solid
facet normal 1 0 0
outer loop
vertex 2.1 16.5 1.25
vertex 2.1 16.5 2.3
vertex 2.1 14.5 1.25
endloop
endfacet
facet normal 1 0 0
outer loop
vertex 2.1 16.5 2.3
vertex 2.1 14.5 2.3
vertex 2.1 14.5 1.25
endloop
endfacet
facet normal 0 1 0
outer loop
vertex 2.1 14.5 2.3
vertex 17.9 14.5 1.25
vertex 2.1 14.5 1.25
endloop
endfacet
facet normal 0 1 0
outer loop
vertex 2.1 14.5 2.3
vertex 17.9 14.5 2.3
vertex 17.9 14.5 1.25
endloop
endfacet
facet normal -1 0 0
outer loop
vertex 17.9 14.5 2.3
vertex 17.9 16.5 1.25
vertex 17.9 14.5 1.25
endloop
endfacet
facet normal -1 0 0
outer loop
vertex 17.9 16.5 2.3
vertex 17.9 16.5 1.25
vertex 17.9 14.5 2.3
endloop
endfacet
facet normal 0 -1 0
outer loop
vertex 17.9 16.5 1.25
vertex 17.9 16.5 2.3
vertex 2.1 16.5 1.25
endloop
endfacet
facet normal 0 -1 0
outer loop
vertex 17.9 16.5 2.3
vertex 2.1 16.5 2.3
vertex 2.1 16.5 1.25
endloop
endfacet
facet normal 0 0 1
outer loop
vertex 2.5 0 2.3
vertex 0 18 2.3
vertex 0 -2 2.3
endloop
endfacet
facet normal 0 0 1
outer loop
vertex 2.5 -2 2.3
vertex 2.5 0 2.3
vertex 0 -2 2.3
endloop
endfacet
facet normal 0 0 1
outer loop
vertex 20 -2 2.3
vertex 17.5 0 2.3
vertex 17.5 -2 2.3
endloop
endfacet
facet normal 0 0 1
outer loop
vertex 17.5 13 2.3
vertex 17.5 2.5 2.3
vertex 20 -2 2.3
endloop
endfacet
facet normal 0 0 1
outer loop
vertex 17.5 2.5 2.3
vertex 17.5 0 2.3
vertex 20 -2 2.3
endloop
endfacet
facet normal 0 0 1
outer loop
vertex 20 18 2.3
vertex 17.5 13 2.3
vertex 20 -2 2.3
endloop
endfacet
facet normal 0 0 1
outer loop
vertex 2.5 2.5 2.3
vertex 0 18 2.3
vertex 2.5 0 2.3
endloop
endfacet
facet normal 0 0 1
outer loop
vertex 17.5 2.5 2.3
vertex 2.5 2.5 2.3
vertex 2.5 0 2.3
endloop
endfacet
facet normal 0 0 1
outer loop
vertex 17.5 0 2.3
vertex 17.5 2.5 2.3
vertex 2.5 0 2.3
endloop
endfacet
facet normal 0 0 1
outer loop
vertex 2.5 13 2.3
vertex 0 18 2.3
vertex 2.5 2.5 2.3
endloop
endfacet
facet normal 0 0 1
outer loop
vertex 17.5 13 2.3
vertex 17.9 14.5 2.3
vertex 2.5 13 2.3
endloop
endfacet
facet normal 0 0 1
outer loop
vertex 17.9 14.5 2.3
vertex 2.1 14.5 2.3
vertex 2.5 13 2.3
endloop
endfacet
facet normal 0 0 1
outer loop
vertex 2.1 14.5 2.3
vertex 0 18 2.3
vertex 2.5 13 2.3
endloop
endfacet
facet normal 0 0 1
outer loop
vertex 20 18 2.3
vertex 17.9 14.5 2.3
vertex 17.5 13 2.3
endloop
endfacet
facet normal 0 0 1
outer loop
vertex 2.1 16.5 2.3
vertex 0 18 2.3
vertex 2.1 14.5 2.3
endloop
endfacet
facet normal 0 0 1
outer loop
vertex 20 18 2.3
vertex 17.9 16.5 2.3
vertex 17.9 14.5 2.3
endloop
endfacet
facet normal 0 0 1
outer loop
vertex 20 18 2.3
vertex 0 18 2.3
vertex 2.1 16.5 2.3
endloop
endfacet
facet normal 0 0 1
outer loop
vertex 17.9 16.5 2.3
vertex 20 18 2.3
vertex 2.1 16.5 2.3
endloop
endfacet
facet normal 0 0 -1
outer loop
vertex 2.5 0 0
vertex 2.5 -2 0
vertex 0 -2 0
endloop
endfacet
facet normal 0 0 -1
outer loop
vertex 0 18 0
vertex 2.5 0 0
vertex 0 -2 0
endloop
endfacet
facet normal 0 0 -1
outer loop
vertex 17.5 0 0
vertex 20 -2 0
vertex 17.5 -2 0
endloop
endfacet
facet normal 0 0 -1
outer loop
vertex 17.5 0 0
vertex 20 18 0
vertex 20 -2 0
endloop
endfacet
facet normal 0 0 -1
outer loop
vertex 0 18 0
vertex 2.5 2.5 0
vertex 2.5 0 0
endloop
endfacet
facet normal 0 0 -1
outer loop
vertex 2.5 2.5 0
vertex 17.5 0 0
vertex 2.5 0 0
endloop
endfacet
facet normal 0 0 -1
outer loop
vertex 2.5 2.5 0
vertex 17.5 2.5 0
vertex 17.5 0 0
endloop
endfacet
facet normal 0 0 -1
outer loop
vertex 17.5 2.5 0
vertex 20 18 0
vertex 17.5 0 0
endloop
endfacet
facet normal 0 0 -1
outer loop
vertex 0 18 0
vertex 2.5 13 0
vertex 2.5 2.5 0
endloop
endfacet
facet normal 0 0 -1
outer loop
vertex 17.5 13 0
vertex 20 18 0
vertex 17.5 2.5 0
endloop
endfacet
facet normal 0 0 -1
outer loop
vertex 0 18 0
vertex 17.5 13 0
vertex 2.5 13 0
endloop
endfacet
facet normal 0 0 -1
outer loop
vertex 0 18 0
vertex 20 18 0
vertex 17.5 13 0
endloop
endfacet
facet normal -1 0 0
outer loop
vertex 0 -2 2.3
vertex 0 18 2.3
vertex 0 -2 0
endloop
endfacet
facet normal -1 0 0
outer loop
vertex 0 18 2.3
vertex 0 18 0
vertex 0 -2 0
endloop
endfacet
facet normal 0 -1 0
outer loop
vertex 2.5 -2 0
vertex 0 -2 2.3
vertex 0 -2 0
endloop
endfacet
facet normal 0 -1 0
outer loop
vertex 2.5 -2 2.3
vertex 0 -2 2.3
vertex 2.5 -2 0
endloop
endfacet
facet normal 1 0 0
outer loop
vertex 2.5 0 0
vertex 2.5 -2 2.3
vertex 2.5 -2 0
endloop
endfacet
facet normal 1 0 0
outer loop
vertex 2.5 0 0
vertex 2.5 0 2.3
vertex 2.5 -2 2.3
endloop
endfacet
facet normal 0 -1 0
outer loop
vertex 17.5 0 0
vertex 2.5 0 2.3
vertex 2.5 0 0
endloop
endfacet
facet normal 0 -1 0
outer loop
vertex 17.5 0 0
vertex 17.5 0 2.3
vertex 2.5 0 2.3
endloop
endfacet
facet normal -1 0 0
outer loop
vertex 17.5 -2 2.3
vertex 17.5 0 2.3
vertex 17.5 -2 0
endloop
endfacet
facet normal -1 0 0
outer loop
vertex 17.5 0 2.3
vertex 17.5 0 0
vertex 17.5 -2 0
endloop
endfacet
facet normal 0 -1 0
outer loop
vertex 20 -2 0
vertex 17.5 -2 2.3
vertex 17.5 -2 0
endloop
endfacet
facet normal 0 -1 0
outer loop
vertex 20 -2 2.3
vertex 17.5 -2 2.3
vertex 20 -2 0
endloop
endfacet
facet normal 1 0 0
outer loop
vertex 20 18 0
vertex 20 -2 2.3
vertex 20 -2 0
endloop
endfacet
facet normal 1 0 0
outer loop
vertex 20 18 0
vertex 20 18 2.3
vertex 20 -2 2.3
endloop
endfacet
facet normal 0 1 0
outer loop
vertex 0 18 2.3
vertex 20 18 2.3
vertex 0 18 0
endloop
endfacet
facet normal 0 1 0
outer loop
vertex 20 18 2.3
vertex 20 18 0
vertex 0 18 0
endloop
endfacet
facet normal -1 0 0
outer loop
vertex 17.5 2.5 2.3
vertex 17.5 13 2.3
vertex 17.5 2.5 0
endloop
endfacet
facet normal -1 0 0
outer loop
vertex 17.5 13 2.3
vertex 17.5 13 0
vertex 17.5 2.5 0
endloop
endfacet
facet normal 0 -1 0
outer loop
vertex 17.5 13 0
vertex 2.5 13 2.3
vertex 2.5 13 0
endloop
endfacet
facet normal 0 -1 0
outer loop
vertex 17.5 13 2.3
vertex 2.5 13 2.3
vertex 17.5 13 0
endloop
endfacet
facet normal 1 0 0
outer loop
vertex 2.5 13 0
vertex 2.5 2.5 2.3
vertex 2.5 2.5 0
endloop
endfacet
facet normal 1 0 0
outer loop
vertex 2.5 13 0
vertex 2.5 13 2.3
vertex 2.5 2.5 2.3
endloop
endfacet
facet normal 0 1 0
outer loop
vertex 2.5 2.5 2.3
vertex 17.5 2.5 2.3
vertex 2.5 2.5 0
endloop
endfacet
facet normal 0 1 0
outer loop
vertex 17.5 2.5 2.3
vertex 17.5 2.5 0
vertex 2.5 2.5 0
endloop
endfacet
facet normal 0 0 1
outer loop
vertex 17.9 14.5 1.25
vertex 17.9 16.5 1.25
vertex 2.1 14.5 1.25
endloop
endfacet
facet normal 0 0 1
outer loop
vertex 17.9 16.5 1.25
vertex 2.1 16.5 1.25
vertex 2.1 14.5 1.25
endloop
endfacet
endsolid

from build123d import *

# Parameters (mm, degrees)
SKETCH1_W           = 15
SKETCH1_H           = 10.5
SKETCH1_W_2         = 15.8
SKETCH1_H_2         = 2
BOSS_EXTRUDE1_DEPTH = 2.3
SKETCH1_2_W         = 15.8
SKETCH1_2_H         = 2
BOSS_EXTRUDE2_DEPTH = 1.25


with BuildPart() as part:
    # Sketch1 → Boss-Extrude1 (new body)
    with BuildSketch(Plane.XY):
        Polygon((0, 0), (0, -2), (2.5, -2), (2.5, 0), (17.5, 0), (17.5, -2), (20, -2), (20, 0), (20, 18), (0, 18), align=None)
        with Locations((10, 7.75)):
            Rectangle(SKETCH1_W, SKETCH1_H, mode=Mode.SUBTRACT)
        with Locations((10, 15.5)):
            Rectangle(SKETCH1_W_2, SKETCH1_H_2, mode=Mode.SUBTRACT)
    extrude(amount=BOSS_EXTRUDE1_DEPTH)

    # Sketch1<2> → Boss-Extrude2 (add)
    with BuildSketch(Plane.XY):
        with Locations((10, 15.5)):
            Rectangle(SKETCH1_2_W, SKETCH1_2_H)
    extrude(amount=BOSS_EXTRUDE2_DEPTH)


solid = part.part
